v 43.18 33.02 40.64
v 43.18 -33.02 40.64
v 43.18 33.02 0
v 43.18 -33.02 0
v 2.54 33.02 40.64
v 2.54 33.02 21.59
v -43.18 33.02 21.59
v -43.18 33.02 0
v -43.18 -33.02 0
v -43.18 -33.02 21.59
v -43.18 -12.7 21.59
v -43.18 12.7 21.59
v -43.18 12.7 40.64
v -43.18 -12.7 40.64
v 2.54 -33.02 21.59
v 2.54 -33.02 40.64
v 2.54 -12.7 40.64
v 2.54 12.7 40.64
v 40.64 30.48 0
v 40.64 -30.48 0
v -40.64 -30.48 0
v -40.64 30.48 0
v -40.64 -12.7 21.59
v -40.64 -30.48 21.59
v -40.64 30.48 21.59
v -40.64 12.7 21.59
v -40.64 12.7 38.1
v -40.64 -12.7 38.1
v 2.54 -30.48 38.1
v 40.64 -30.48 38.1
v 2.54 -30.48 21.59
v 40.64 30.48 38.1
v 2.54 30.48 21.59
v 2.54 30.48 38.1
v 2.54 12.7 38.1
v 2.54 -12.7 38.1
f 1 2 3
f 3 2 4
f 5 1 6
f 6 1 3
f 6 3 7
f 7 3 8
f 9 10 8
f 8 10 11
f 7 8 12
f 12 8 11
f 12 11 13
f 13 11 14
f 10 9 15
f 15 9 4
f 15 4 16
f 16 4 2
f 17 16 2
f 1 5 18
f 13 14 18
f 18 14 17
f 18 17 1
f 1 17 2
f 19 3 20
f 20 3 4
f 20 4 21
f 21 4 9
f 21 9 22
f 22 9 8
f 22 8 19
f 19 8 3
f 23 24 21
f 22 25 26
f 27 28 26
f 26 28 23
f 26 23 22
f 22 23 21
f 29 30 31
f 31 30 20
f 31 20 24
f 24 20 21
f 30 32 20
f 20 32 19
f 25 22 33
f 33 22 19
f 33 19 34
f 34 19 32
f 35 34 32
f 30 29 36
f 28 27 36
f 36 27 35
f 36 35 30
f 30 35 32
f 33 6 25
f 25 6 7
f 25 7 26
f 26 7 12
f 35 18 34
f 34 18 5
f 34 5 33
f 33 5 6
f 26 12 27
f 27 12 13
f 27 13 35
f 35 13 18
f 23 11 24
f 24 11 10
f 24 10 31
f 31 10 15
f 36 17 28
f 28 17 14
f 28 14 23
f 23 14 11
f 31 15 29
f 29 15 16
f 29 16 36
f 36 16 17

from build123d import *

# Parameters (mm, degrees)
SKETCH1_W           = 86.36
SKETCH1_H           = 66.04
BOSS_EXTRUDE1_DEPTH = 40.64
SKETCH2_W           = 81.28
SKETCH2_H           = 60.96
CUT_EXTRUDE1_DEPTH  = 38.1
SKETCH3_W           = 45.72
SKETCH3_H           = 20.32
CUT_EXTRUDE2_DEPTH  = 19.05
SKETCH4_W           = 45.72
SKETCH4_H           = 20.32
CUT_EXTRUDE3_DEPTH  = 19.05


with BuildPart() as part:
    # Sketch1 → Boss-Extrude1 (new body)
    with BuildSketch(Plane.XY):
        Rectangle(SKETCH1_W, SKETCH1_H)
    extrude(amount=BOSS_EXTRUDE1_DEPTH)

    # Sketch2 → Cut-Extrude1 (cut)
    with BuildSketch(Plane(origin=(0, 0, 0), x_dir=(-1, 0, 0), z_dir=(0, 0, -1))):
        Rectangle(SKETCH2_W, SKETCH2_H)
    extrude(amount=-CUT_EXTRUDE1_DEPTH, mode=Mode.SUBTRACT)

    # Sketch3 → Cut-Extrude2 (cut)
    with BuildSketch(Plane.XY.offset(40.64)):
        with Locations((-20.32, 22.86)):
            Rectangle(SKETCH3_W, SKETCH3_H)
    extrude(amount=-CUT_EXTRUDE2_DEPTH, mode=Mode.SUBTRACT)

    # Sketch4 → Cut-Extrude3 (cut)
    with BuildSketch(Plane.XY.offset(40.64)):
        with Locations((-20.32, -22.86)):
            Rectangle(SKETCH4_W, SKETCH4_H)
    extrude(amount=-CUT_EXTRUDE3_DEPTH, mode=Mode.SUBTRACT)


solid = part.part
